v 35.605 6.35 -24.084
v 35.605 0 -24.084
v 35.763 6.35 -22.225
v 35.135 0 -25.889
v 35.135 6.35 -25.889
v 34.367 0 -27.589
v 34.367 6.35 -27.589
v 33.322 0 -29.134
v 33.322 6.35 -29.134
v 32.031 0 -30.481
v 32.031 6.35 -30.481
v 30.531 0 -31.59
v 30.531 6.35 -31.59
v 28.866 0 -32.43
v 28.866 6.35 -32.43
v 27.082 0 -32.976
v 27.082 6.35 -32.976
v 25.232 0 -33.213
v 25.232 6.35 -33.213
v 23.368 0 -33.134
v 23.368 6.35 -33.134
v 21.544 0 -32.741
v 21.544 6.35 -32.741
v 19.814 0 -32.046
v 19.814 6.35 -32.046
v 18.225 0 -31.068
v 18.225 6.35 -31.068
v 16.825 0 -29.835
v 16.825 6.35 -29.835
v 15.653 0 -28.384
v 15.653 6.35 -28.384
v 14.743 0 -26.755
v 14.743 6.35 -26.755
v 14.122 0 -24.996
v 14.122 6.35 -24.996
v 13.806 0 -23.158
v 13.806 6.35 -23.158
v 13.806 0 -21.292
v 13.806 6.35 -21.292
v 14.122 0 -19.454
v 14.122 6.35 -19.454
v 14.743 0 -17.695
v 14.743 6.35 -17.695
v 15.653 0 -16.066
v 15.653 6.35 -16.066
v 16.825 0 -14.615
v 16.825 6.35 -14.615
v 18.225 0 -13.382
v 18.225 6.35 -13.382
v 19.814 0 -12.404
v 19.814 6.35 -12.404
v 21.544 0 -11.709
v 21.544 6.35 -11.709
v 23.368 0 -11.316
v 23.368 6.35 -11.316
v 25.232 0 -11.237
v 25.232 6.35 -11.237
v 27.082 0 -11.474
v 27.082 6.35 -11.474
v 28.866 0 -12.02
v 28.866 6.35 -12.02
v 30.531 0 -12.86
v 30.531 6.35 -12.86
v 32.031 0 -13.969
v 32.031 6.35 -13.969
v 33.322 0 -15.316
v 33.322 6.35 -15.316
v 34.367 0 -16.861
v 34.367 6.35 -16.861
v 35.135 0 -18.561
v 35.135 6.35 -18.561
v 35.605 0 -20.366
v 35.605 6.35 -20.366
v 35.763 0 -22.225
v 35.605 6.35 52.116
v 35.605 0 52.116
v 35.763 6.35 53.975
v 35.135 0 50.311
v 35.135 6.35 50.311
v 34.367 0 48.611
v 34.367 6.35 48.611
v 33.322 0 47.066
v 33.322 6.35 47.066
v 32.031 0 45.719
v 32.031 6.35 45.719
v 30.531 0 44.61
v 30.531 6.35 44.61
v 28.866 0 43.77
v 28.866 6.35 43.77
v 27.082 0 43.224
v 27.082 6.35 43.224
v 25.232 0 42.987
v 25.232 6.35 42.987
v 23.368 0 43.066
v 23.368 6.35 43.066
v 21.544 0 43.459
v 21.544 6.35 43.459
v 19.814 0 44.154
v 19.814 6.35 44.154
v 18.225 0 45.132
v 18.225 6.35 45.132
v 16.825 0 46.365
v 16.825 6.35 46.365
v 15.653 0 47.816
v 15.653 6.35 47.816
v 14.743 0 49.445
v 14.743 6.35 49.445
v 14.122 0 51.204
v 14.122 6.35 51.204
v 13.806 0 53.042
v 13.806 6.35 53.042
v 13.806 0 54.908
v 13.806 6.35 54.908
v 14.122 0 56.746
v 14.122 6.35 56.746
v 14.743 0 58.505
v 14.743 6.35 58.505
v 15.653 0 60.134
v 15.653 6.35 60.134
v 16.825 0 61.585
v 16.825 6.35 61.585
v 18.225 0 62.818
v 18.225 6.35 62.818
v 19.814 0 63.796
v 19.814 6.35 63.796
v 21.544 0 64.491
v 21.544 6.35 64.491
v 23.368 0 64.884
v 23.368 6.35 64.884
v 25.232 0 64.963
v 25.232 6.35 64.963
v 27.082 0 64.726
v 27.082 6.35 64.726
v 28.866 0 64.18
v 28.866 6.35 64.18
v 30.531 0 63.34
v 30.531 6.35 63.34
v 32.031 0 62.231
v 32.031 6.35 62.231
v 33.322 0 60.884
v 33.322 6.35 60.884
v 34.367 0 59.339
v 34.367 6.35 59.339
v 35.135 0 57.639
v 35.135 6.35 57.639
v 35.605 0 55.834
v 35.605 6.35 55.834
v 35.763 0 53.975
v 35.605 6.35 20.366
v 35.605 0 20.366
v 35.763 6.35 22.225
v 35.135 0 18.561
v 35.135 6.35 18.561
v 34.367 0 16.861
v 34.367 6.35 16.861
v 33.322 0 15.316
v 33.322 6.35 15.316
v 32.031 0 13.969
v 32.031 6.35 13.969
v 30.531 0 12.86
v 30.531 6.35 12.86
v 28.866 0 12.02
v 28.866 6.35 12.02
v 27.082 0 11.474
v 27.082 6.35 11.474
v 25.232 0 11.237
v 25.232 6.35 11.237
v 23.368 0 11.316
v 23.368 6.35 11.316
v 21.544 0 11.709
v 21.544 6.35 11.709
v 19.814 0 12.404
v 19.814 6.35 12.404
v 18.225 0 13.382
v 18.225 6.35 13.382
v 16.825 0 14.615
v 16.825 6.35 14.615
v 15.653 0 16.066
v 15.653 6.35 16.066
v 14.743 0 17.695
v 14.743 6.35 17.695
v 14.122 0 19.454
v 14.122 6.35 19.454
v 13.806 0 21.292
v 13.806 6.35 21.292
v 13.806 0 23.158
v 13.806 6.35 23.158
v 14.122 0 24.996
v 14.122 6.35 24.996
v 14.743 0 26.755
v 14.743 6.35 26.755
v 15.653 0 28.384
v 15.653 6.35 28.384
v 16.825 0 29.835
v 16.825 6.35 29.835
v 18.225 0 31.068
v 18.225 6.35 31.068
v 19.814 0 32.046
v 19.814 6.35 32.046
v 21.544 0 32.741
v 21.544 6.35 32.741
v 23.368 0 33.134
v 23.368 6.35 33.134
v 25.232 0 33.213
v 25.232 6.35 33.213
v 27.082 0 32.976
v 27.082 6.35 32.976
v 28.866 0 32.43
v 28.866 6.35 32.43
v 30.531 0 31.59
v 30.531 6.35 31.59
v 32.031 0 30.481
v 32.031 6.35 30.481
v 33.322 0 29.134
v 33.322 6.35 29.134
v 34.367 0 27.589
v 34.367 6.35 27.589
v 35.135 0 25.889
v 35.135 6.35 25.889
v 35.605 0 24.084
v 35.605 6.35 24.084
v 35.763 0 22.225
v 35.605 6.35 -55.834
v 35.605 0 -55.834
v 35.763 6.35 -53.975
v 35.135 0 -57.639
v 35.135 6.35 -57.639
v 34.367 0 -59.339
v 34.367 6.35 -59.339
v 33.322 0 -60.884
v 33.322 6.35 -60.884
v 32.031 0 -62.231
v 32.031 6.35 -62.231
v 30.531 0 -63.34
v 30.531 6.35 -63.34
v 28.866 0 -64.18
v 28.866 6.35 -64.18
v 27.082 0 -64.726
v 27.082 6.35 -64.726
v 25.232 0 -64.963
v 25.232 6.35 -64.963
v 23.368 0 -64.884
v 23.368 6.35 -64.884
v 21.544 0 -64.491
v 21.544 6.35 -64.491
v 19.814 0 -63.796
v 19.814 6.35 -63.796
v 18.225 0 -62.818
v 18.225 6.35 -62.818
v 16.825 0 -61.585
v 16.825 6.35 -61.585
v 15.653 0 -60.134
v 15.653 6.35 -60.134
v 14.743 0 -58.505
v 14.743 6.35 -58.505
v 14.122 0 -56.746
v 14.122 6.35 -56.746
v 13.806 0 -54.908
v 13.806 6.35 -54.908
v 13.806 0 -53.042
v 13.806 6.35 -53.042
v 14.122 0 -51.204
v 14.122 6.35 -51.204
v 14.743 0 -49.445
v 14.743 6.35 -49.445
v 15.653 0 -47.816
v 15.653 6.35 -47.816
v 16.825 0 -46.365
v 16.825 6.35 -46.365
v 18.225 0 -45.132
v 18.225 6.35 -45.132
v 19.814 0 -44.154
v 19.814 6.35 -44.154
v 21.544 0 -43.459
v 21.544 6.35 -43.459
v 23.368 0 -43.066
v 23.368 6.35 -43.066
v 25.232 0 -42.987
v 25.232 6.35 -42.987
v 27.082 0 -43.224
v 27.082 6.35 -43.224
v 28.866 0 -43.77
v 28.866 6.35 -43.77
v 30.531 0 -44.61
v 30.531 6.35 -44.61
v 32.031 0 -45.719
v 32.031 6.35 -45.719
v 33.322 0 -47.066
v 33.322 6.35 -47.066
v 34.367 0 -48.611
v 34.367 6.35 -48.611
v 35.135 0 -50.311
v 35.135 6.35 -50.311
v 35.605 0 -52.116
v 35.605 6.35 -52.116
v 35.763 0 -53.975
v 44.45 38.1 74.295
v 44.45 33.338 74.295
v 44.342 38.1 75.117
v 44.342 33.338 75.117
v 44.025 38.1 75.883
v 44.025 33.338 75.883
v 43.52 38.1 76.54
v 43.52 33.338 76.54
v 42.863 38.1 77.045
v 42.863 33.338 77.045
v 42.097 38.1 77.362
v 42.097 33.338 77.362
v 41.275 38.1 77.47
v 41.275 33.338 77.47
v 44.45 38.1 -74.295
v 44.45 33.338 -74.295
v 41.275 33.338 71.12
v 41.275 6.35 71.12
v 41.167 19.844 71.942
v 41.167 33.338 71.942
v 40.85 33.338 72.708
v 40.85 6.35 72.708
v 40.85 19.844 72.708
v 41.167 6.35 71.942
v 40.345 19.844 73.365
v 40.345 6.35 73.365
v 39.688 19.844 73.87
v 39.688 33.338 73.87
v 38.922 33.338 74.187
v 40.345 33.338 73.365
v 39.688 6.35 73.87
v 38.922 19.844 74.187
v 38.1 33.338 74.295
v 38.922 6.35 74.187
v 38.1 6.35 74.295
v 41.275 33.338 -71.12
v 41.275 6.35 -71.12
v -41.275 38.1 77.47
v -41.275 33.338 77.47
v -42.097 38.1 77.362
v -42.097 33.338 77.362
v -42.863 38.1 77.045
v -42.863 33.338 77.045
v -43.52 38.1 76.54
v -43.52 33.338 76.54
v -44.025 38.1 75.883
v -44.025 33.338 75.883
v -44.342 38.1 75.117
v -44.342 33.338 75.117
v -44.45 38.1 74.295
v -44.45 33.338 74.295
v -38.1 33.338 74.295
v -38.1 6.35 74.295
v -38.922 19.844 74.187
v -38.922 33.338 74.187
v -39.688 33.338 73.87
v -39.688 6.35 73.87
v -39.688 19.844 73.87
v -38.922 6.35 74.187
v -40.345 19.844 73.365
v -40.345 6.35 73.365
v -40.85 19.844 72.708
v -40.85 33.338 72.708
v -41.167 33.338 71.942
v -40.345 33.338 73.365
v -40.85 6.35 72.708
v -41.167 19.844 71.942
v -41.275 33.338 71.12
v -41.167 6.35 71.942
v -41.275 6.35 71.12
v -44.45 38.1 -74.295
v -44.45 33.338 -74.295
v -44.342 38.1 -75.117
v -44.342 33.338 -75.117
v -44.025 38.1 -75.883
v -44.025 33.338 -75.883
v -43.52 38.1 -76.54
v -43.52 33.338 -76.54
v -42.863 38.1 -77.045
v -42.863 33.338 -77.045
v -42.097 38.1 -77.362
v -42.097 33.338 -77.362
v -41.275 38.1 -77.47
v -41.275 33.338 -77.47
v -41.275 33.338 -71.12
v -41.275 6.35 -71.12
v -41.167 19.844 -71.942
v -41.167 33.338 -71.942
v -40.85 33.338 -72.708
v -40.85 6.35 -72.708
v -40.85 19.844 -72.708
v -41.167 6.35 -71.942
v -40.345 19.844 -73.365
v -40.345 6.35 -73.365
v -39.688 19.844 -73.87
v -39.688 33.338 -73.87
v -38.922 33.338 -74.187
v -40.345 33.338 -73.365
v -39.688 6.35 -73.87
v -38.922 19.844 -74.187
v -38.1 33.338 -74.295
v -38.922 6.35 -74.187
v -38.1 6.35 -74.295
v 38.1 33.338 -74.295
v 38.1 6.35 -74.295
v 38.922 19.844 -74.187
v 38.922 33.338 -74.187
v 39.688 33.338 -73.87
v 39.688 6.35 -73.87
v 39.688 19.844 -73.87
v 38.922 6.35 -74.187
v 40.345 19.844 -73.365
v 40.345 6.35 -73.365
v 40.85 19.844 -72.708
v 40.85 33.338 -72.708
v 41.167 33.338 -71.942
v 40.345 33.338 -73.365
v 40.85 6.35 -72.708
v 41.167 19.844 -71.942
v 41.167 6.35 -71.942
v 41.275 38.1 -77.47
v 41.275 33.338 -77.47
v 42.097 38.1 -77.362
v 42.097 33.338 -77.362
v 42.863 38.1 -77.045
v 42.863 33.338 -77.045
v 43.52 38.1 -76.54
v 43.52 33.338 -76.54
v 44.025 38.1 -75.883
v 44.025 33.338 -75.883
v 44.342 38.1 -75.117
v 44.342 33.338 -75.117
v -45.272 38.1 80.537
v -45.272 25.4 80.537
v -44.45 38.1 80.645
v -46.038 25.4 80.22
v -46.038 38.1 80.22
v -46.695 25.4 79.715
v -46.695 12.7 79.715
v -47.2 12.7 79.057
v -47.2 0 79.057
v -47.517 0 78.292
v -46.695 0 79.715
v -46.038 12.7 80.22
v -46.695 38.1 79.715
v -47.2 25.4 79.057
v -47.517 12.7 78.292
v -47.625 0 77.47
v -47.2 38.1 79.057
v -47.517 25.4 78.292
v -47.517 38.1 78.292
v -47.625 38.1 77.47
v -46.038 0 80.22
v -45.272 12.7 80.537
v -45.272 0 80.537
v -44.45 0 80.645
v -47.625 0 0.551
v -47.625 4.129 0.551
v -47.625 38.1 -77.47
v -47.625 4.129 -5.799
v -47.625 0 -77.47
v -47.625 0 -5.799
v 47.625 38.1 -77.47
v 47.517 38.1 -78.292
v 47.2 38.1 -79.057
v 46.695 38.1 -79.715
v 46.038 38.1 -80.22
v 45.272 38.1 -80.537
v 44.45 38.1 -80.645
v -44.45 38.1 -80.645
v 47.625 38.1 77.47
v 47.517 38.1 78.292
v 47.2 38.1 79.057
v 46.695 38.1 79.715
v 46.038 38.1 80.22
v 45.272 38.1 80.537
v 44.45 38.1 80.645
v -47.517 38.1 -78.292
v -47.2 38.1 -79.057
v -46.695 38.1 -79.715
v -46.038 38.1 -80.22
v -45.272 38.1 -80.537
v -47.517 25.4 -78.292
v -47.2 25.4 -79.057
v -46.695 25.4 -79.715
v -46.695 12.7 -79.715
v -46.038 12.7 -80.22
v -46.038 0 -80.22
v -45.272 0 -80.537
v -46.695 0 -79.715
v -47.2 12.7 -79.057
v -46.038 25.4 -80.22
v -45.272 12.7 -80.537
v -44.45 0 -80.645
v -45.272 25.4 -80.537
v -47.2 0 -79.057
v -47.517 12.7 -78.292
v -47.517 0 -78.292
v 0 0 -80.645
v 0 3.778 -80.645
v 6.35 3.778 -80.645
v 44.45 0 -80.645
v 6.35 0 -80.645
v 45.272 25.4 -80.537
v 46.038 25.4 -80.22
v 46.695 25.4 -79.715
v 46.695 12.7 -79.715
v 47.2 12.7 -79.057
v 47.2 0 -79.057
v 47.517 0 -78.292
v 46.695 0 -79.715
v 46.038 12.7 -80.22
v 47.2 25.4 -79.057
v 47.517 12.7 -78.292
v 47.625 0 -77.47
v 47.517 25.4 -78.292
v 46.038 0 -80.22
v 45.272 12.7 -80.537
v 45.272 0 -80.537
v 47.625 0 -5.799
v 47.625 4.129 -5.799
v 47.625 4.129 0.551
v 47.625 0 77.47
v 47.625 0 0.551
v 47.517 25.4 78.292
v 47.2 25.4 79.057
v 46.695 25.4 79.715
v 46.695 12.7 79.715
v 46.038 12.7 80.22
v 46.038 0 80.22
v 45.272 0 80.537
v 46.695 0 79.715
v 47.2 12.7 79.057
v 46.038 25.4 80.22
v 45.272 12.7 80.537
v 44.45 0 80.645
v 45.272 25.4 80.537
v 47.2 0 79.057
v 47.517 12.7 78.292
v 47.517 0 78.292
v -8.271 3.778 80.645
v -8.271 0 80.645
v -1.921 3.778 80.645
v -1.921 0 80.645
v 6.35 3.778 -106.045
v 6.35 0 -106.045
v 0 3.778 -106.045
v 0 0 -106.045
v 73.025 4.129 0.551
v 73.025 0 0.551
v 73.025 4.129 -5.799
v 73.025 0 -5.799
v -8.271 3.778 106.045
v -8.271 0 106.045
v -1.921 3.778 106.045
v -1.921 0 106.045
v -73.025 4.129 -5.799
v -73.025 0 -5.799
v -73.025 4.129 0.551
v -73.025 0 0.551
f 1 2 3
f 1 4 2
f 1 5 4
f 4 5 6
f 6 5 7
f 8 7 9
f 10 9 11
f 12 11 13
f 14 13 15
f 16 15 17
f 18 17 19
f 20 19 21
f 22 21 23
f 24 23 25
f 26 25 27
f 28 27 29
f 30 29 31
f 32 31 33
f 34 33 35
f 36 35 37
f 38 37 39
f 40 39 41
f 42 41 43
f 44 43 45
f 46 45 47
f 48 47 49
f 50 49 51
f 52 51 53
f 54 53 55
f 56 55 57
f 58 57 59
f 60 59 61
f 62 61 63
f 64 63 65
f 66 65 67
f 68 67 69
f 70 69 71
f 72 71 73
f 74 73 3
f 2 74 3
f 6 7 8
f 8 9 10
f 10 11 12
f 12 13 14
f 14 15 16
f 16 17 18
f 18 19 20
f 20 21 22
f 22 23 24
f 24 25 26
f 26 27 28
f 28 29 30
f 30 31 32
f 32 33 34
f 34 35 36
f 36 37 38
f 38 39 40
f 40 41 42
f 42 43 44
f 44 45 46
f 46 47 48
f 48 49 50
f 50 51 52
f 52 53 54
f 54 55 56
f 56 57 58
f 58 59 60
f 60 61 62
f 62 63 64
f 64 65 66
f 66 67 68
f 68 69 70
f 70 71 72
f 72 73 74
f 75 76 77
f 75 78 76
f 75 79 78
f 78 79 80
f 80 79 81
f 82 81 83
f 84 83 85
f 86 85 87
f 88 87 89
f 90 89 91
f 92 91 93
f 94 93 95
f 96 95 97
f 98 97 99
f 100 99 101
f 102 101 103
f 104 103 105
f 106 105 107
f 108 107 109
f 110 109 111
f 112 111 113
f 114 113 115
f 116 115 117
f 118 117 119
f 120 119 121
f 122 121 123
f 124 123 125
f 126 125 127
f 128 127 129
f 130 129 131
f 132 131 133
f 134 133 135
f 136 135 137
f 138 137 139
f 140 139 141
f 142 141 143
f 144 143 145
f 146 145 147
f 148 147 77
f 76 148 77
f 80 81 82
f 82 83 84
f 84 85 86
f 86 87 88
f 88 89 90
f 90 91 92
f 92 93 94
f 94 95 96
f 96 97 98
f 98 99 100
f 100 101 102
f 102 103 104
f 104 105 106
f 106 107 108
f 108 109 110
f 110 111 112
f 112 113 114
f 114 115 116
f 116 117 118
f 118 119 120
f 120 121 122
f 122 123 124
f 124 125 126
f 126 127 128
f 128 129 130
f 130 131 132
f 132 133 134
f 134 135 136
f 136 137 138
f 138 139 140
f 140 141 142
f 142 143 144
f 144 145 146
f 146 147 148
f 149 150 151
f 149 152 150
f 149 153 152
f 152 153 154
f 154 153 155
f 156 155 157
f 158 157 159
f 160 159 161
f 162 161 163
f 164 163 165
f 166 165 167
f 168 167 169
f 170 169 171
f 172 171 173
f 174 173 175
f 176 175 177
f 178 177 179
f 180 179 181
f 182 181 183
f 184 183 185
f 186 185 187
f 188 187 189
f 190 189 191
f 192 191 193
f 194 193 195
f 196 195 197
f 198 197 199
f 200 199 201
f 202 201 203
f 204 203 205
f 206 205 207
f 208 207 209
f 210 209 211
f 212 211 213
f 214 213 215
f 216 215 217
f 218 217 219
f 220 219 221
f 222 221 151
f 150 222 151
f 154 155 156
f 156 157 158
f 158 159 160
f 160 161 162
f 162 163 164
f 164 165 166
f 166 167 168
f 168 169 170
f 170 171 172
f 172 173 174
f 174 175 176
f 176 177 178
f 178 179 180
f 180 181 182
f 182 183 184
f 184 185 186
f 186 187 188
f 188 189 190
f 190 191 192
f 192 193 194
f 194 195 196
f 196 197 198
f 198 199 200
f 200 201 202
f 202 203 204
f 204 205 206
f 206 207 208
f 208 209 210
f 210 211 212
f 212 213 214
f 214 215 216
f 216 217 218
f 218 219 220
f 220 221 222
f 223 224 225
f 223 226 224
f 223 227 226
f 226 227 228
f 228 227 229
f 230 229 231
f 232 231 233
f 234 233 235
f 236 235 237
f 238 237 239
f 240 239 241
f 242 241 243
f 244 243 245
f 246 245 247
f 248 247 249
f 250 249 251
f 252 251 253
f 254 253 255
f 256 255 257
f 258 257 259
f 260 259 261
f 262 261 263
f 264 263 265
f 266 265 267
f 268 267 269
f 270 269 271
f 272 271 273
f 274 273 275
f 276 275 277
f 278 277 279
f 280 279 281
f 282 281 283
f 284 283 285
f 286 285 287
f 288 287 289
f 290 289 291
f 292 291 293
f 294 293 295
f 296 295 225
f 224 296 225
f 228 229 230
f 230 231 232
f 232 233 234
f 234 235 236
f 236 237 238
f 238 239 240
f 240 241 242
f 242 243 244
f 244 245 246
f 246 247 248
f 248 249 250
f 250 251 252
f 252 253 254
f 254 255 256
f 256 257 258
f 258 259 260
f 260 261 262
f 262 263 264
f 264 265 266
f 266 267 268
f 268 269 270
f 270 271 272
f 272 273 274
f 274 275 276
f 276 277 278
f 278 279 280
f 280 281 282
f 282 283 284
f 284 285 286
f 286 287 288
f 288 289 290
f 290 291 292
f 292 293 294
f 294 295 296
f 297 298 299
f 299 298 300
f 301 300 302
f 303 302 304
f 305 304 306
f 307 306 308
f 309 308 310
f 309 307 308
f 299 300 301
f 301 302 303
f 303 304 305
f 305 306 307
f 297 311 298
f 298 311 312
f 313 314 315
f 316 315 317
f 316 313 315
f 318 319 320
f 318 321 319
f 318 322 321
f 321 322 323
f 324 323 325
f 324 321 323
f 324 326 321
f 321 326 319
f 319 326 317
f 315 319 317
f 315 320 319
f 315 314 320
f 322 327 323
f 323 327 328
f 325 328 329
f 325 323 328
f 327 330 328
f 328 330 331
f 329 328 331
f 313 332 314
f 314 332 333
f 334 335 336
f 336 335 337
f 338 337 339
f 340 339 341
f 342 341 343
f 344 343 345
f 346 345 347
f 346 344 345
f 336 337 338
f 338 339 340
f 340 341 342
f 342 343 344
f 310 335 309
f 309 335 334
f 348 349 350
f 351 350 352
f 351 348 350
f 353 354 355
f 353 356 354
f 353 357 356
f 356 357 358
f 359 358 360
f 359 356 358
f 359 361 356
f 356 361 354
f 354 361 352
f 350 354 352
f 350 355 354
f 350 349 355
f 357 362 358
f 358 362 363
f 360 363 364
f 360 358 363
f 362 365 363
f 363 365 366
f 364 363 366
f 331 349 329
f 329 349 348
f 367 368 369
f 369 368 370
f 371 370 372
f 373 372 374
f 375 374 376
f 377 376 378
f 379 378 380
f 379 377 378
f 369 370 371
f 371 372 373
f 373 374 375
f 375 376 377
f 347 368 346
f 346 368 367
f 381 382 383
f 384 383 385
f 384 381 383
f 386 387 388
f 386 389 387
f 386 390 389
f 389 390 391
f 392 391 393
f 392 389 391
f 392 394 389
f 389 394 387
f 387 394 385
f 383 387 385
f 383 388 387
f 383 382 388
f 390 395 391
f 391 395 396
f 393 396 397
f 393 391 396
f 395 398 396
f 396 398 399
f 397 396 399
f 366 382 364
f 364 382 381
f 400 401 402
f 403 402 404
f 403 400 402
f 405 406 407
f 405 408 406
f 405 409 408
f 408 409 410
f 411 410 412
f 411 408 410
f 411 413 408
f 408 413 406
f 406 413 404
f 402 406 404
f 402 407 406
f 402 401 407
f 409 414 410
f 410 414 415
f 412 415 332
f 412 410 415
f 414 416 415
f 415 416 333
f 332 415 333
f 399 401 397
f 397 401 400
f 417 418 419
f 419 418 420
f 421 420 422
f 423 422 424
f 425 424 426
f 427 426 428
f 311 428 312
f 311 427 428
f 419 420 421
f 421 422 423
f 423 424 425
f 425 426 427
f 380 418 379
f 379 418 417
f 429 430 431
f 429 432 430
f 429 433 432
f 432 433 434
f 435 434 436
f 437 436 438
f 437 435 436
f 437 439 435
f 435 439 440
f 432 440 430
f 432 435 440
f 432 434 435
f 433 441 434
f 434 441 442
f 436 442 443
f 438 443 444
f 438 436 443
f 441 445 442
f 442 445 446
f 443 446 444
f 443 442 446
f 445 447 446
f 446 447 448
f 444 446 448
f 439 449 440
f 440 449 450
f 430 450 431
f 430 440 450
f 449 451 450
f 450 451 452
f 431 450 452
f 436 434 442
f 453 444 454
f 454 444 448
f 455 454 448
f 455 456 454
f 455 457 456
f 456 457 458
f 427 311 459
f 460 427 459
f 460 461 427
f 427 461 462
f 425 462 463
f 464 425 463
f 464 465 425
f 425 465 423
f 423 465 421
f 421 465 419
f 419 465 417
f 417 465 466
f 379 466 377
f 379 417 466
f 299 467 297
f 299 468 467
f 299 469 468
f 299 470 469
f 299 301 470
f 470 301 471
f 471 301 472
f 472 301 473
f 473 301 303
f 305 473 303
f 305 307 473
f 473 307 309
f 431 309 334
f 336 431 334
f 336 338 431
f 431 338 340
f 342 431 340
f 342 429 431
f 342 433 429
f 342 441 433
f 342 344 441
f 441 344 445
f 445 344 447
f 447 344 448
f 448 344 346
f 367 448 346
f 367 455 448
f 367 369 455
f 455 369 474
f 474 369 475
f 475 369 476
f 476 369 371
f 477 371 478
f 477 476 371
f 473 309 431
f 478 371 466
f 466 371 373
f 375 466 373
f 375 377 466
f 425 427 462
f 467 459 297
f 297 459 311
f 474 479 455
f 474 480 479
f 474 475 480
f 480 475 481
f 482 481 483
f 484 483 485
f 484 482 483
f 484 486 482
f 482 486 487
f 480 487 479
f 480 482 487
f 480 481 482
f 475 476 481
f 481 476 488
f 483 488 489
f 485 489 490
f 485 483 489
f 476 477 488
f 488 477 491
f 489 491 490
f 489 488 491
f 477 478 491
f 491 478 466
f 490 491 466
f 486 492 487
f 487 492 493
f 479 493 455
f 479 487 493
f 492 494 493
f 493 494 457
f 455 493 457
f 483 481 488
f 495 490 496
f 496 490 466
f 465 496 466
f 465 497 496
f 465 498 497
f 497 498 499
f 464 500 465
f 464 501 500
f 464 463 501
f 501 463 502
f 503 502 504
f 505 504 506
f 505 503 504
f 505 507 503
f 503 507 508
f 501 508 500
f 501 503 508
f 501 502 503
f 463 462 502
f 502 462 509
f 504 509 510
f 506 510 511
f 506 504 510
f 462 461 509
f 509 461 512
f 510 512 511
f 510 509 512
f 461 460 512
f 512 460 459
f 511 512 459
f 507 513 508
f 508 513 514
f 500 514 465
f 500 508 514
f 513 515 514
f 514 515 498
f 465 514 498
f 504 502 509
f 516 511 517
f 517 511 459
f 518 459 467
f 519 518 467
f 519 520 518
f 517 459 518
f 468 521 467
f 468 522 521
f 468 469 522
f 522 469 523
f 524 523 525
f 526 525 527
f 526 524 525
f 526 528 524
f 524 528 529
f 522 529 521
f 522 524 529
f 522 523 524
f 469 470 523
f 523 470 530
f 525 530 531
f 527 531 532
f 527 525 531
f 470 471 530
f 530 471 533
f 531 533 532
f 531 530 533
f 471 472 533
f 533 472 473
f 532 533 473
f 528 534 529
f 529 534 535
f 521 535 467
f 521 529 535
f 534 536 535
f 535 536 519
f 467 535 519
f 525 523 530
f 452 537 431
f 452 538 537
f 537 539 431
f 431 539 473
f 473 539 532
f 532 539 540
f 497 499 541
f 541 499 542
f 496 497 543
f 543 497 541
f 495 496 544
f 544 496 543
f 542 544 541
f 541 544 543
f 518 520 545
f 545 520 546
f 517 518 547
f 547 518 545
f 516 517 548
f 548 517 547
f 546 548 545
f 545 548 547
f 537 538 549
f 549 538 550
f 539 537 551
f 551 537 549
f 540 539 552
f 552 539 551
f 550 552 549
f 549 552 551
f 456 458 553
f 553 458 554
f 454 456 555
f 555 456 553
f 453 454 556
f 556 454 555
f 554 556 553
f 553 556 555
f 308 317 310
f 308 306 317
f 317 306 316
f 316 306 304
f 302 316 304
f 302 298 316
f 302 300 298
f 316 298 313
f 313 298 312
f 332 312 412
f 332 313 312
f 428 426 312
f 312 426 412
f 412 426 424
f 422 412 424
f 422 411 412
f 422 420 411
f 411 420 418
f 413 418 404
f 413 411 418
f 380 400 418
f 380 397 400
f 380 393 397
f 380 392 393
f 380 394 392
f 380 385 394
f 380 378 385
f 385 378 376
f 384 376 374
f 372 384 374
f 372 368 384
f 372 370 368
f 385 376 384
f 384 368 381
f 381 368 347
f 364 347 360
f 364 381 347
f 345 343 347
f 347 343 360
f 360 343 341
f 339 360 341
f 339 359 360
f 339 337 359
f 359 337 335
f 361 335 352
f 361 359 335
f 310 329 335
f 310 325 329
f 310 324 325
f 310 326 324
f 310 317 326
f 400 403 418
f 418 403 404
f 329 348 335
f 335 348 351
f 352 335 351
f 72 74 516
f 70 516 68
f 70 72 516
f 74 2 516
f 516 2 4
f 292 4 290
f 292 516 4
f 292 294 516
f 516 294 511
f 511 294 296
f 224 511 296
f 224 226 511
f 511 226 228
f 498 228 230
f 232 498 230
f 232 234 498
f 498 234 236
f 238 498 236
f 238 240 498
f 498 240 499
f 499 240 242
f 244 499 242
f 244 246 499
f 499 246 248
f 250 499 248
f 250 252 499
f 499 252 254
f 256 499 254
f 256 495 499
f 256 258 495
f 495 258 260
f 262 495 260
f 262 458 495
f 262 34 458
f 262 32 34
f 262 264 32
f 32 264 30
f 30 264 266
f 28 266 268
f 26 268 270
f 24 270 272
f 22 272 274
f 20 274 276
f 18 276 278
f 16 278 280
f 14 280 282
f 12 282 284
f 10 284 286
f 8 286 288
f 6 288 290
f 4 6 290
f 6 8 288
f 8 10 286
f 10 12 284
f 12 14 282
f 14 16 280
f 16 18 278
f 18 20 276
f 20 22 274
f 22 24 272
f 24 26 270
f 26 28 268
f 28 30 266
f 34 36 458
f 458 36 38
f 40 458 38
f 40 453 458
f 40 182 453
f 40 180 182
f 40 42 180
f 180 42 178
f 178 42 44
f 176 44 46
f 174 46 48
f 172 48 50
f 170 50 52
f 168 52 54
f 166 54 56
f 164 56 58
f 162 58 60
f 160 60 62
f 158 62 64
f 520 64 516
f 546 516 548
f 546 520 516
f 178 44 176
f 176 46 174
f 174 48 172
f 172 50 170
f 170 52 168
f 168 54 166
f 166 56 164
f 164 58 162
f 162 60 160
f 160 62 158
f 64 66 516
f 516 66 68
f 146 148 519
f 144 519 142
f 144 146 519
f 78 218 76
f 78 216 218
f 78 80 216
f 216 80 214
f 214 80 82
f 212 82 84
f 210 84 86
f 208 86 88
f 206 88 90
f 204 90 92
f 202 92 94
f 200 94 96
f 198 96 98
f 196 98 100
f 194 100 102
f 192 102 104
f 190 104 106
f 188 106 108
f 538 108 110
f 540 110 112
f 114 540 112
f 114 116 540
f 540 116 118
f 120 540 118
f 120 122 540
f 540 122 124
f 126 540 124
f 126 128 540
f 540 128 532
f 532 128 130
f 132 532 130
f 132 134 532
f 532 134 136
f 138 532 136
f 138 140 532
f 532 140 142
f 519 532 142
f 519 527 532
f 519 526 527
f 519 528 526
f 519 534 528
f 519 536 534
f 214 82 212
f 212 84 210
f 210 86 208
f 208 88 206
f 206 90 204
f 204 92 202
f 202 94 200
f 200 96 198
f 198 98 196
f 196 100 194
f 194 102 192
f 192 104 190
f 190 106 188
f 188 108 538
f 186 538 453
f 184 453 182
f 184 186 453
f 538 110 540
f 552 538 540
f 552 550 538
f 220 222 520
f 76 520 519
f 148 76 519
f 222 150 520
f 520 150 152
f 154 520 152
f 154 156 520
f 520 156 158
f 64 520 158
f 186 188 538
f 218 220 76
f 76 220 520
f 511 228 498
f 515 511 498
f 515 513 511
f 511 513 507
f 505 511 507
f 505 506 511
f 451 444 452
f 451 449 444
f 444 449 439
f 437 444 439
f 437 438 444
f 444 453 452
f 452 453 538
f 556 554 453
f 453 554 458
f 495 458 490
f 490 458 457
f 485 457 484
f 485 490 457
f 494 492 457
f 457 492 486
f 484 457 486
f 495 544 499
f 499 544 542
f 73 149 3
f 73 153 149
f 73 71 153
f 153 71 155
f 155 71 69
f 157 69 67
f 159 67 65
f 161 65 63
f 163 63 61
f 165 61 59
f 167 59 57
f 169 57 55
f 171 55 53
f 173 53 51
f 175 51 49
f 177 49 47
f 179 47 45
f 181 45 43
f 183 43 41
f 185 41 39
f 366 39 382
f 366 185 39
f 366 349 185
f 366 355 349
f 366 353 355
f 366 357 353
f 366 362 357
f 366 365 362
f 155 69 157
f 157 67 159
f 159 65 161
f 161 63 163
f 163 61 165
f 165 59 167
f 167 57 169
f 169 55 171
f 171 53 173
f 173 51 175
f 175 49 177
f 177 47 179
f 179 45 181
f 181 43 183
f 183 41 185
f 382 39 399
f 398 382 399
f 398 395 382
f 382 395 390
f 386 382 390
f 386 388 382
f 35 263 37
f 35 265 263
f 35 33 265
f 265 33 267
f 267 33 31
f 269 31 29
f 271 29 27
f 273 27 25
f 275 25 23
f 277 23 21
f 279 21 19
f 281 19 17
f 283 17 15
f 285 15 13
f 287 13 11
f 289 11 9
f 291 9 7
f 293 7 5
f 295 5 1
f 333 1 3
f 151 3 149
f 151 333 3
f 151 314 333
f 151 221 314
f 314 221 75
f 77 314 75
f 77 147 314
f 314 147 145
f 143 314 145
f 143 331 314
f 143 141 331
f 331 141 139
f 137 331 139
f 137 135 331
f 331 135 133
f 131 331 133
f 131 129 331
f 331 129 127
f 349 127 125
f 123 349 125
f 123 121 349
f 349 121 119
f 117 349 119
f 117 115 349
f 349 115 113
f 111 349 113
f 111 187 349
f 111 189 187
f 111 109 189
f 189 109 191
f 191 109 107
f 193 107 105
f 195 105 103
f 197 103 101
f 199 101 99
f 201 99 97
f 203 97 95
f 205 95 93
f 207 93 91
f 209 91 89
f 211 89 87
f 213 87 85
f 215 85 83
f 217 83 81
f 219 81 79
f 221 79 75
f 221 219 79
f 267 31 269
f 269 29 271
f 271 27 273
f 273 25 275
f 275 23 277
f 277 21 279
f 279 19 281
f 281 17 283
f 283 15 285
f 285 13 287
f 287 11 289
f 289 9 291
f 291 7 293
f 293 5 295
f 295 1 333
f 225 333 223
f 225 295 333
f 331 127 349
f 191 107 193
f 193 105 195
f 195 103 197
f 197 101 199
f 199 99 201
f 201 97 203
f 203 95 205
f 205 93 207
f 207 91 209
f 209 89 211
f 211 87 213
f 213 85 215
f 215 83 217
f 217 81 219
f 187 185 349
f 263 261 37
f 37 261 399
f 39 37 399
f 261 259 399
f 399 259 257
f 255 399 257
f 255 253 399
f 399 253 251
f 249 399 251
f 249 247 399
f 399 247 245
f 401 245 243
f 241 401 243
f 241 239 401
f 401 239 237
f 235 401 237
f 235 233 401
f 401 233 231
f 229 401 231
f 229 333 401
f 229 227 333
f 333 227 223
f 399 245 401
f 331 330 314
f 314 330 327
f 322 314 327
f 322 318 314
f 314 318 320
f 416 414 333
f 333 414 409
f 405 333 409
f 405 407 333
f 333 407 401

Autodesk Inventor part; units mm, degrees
ref_plane "YZ Plane" through (0, 0, 0) normal (1, 0, 0) x (0, 1, 0)
ref_plane "XZ Plane" through (0, 0, 0) normal (0, 1, 0) x (-1, 0, 0)
ref_plane "XY Plane" through (0, 0, 0) normal (0, 0, 1) x (1, 0, 0)
sketch "Sketch2" plane through (0, 0, 0) normal (0, 1, 0) x (-1, 0, 0)
  line L0 (-47.625, 80.645) -> (47.625, 80.645)
  line L1 (47.625, 80.645) -> (47.625, -80.645)
  line L2 (47.625, -80.645) -> (-47.625, -80.645)
  line L3 (-47.625, -80.645) -> (-47.625, 80.645)
  line L4 (-47.625, 80.645) -> (47.625, -80.645) construction
  line L5 (47.625, 80.645) -> (-47.625, -80.645) construction
  point P0 (0, 0)
  dimension "d6" = 161.29
  dimension "d7" = 95.25
extrude "Extrusion2" add sketch "Sketch2" along normal blind 6.35
sketch "Sketch3" plane through (0, 6.35, 0) normal (0, 1, 0) x (1, 0, 0)
  line L0 (47.625, 80.645) -> (-47.625, 80.645) projected
  line L1 (47.625, -80.645) -> (-47.625, -80.645)
  line L2 (-47.625, -80.645) -> (-47.625, 80.645)
  line L3 (-47.625, 80.645) -> (47.625, 80.645)
  line L4 (47.625, 80.645) -> (47.625, -80.645)
  line L5 (47.625, -80.645) -> (-47.625, 80.645) construction
  line L6 (-47.625, -80.645) -> (47.625, 80.645) construction
  line L7 (41.275, -74.295) -> (-41.275, -74.295)
  line L8 (-41.275, -74.295) -> (-41.275, 74.295)
  line L9 (-41.275, 74.295) -> (41.275, 74.295)
  line L10 (41.275, 74.295) -> (41.275, -74.295)
  line L11 (41.275, -74.295) -> (-41.275, 74.295) construction
  line L12 (-41.275, -74.295) -> (41.275, 74.295) construction
  point P0 (0, 0)
  dimension "d10" = 148.59
  dimension "d11" = 82.55
extrude "Extrusion3" add sketch "Sketch3" along normal blind 31.75
sketch "Sketch6" plane through (0, 38.1, 0) normal (0, 1, 0) x (1, 0, 0)
  line L0 (44.45, -77.47) -> (-44.45, -77.47)
  line L1 (-44.45, -77.47) -> (-44.45, 77.47)
  line L2 (-44.45, 77.47) -> (44.45, 77.47)
  line L3 (44.45, 77.47) -> (44.45, -77.47)
  line L4 (44.45, -77.47) -> (-44.45, 77.47) construction
  line L5 (-44.45, -77.47) -> (44.45, 77.47) construction
  point P0 (0, 0)
  dimension "d29" = 154.94
  dimension "d30" = 88.9
extrude "Extrusion6" cut sketch "Sketch6" against normal blind 4.7625
sketch "Sketch9" plane through (-47.625, 0, -80.645) normal (-1, 0, 0) x (0, 0, 1)
  line L0 (161.29, 0) -> (0, 0) projected
  line L1 (74.8462, 0) -> (81.1962, 0)
  line L2 (81.1962, 0) -> (81.1962, 4.1295)
  line L3 (81.1962, 4.1295) -> (74.8462, 4.1295)
  line L4 (74.8462, 4.1295) -> (74.8462, 0)
  point P0 (80.645, 0)
  dimension "d57" = 6.35
extrude "Extrusion9" add sketch "Sketch9" along normal blind 25.4
sketch "Sketch10" plane through (-47.625, 0, 80.645) normal (0, 0, 1) x (1, 0, 0)
  line L0 (95.25, 0) -> (0, 0) projected
  line L1 (39.3541, 0) -> (45.7041, 0)
  line L2 (45.7041, 0) -> (45.7041, 3.778)
  line L3 (45.7041, 3.778) -> (39.3541, 3.778)
  line L4 (39.3541, 3.778) -> (39.3541, 0)
  point P0 (47.625, 0)
  dimension "d56" = 6.35
extrude "Extrusion10" add sketch "Sketch10" along normal blind 25.4
sketch "Sketch11" plane through (47.625, 0, 80.645) normal (1, 0, 0) x (0, 0, -1)
  line L0 (161.29, 0) -> (0, 0) projected
  line L1 (86.4438, 4.1295) -> (86.4438, 0) projected
  line L2 (80.0938, 0) -> (86.4438, 0)
  line L3 (86.4438, 0) -> (86.4438, 4.1295)
  line L4 (86.4438, 4.1295) -> (80.0938, 4.1295)
  line L5 (80.0938, 4.1295) -> (80.0938, 0)
  point P0 (80.645, 0)
  dimension "d55" = 6.35
extrude "Extrusion11" add sketch "Sketch11" along normal blind 25.4
sketch "Sketch12" plane through (47.625, 0, -80.645) normal (0, 0, -1) x (-1, 0, 0)
  line L0 (41.275, 0) -> (47.625, 0)
  line L1 (47.625, 0) -> (47.625, 3.778)
  line L2 (47.625, 3.778) -> (41.275, 3.778)
  line L3 (41.275, 3.778) -> (41.275, 0)
  dimension "d54" = 6.35
extrude "Extrusion12" add sketch "Sketch12" along normal blind 25.4
fillet "Fillet1" radius 3.175 12 edges at (47.625, 19.05, 80.645) (47.625, 19.05, -80.645) (-47.625, 19.05, -80.645) (-47.625, 19.05, 80.645) (44.45, 35.7187, -77.47) (41.275, 19.8437, -74.295) (-41.275, 19.8437, -74.295) (-44.45, 35.7187, -77.47) (-41.275, 19.8437, 74.295) (-44.45, 35.7187, 77.47) (41.275, 19.8437, 74.295) (44.45, 35.7187, 77.47)
sketch "Sketch13" plane through (0, 0, 0) normal (0, -1, 0) x (1, 0, 0)
  line L0 (-24.765, 53.975) -> (24.765, 53.975) construction
  line L1 (24.765, 53.975) -> (24.765, -53.975) construction
  line L2 (24.765, -53.975) -> (-24.765, -53.975) construction
  line L3 (-24.765, -53.975) -> (-24.765, 53.975) construction
  line L4 (-24.765, 53.975) -> (24.765, -53.975) construction
  line L5 (24.765, 53.975) -> (-24.765, -53.975) construction
  circle A0 centre (24.765, 53.975) radius 10.9982
  circle A1 centre (24.765, 22.225) radius 10.9982
  circle A2 centre (24.765, -22.225) radius 10.9982
  circle A3 centre (24.765, -53.975) radius 10.9982
  line L6 (-47.625, -5.7988) -> (-47.625, -77.47) construction
  point P0 (0, 0)
  dimension "d58" = 21.9964
  dimension "d59" = 21.9964
  dimension "d60" = 21.9964
  dimension "d61" = 21.9964
  dimension "d62" = 31.75
  dimension "d63" = 44.45
  dimension "d64" = 31.75
  dimension "d66" = 72.39
extrude "Extrusion13" cut sketch "Sketch13" against normal up to next
properties part number "iceTubeClockBase"
